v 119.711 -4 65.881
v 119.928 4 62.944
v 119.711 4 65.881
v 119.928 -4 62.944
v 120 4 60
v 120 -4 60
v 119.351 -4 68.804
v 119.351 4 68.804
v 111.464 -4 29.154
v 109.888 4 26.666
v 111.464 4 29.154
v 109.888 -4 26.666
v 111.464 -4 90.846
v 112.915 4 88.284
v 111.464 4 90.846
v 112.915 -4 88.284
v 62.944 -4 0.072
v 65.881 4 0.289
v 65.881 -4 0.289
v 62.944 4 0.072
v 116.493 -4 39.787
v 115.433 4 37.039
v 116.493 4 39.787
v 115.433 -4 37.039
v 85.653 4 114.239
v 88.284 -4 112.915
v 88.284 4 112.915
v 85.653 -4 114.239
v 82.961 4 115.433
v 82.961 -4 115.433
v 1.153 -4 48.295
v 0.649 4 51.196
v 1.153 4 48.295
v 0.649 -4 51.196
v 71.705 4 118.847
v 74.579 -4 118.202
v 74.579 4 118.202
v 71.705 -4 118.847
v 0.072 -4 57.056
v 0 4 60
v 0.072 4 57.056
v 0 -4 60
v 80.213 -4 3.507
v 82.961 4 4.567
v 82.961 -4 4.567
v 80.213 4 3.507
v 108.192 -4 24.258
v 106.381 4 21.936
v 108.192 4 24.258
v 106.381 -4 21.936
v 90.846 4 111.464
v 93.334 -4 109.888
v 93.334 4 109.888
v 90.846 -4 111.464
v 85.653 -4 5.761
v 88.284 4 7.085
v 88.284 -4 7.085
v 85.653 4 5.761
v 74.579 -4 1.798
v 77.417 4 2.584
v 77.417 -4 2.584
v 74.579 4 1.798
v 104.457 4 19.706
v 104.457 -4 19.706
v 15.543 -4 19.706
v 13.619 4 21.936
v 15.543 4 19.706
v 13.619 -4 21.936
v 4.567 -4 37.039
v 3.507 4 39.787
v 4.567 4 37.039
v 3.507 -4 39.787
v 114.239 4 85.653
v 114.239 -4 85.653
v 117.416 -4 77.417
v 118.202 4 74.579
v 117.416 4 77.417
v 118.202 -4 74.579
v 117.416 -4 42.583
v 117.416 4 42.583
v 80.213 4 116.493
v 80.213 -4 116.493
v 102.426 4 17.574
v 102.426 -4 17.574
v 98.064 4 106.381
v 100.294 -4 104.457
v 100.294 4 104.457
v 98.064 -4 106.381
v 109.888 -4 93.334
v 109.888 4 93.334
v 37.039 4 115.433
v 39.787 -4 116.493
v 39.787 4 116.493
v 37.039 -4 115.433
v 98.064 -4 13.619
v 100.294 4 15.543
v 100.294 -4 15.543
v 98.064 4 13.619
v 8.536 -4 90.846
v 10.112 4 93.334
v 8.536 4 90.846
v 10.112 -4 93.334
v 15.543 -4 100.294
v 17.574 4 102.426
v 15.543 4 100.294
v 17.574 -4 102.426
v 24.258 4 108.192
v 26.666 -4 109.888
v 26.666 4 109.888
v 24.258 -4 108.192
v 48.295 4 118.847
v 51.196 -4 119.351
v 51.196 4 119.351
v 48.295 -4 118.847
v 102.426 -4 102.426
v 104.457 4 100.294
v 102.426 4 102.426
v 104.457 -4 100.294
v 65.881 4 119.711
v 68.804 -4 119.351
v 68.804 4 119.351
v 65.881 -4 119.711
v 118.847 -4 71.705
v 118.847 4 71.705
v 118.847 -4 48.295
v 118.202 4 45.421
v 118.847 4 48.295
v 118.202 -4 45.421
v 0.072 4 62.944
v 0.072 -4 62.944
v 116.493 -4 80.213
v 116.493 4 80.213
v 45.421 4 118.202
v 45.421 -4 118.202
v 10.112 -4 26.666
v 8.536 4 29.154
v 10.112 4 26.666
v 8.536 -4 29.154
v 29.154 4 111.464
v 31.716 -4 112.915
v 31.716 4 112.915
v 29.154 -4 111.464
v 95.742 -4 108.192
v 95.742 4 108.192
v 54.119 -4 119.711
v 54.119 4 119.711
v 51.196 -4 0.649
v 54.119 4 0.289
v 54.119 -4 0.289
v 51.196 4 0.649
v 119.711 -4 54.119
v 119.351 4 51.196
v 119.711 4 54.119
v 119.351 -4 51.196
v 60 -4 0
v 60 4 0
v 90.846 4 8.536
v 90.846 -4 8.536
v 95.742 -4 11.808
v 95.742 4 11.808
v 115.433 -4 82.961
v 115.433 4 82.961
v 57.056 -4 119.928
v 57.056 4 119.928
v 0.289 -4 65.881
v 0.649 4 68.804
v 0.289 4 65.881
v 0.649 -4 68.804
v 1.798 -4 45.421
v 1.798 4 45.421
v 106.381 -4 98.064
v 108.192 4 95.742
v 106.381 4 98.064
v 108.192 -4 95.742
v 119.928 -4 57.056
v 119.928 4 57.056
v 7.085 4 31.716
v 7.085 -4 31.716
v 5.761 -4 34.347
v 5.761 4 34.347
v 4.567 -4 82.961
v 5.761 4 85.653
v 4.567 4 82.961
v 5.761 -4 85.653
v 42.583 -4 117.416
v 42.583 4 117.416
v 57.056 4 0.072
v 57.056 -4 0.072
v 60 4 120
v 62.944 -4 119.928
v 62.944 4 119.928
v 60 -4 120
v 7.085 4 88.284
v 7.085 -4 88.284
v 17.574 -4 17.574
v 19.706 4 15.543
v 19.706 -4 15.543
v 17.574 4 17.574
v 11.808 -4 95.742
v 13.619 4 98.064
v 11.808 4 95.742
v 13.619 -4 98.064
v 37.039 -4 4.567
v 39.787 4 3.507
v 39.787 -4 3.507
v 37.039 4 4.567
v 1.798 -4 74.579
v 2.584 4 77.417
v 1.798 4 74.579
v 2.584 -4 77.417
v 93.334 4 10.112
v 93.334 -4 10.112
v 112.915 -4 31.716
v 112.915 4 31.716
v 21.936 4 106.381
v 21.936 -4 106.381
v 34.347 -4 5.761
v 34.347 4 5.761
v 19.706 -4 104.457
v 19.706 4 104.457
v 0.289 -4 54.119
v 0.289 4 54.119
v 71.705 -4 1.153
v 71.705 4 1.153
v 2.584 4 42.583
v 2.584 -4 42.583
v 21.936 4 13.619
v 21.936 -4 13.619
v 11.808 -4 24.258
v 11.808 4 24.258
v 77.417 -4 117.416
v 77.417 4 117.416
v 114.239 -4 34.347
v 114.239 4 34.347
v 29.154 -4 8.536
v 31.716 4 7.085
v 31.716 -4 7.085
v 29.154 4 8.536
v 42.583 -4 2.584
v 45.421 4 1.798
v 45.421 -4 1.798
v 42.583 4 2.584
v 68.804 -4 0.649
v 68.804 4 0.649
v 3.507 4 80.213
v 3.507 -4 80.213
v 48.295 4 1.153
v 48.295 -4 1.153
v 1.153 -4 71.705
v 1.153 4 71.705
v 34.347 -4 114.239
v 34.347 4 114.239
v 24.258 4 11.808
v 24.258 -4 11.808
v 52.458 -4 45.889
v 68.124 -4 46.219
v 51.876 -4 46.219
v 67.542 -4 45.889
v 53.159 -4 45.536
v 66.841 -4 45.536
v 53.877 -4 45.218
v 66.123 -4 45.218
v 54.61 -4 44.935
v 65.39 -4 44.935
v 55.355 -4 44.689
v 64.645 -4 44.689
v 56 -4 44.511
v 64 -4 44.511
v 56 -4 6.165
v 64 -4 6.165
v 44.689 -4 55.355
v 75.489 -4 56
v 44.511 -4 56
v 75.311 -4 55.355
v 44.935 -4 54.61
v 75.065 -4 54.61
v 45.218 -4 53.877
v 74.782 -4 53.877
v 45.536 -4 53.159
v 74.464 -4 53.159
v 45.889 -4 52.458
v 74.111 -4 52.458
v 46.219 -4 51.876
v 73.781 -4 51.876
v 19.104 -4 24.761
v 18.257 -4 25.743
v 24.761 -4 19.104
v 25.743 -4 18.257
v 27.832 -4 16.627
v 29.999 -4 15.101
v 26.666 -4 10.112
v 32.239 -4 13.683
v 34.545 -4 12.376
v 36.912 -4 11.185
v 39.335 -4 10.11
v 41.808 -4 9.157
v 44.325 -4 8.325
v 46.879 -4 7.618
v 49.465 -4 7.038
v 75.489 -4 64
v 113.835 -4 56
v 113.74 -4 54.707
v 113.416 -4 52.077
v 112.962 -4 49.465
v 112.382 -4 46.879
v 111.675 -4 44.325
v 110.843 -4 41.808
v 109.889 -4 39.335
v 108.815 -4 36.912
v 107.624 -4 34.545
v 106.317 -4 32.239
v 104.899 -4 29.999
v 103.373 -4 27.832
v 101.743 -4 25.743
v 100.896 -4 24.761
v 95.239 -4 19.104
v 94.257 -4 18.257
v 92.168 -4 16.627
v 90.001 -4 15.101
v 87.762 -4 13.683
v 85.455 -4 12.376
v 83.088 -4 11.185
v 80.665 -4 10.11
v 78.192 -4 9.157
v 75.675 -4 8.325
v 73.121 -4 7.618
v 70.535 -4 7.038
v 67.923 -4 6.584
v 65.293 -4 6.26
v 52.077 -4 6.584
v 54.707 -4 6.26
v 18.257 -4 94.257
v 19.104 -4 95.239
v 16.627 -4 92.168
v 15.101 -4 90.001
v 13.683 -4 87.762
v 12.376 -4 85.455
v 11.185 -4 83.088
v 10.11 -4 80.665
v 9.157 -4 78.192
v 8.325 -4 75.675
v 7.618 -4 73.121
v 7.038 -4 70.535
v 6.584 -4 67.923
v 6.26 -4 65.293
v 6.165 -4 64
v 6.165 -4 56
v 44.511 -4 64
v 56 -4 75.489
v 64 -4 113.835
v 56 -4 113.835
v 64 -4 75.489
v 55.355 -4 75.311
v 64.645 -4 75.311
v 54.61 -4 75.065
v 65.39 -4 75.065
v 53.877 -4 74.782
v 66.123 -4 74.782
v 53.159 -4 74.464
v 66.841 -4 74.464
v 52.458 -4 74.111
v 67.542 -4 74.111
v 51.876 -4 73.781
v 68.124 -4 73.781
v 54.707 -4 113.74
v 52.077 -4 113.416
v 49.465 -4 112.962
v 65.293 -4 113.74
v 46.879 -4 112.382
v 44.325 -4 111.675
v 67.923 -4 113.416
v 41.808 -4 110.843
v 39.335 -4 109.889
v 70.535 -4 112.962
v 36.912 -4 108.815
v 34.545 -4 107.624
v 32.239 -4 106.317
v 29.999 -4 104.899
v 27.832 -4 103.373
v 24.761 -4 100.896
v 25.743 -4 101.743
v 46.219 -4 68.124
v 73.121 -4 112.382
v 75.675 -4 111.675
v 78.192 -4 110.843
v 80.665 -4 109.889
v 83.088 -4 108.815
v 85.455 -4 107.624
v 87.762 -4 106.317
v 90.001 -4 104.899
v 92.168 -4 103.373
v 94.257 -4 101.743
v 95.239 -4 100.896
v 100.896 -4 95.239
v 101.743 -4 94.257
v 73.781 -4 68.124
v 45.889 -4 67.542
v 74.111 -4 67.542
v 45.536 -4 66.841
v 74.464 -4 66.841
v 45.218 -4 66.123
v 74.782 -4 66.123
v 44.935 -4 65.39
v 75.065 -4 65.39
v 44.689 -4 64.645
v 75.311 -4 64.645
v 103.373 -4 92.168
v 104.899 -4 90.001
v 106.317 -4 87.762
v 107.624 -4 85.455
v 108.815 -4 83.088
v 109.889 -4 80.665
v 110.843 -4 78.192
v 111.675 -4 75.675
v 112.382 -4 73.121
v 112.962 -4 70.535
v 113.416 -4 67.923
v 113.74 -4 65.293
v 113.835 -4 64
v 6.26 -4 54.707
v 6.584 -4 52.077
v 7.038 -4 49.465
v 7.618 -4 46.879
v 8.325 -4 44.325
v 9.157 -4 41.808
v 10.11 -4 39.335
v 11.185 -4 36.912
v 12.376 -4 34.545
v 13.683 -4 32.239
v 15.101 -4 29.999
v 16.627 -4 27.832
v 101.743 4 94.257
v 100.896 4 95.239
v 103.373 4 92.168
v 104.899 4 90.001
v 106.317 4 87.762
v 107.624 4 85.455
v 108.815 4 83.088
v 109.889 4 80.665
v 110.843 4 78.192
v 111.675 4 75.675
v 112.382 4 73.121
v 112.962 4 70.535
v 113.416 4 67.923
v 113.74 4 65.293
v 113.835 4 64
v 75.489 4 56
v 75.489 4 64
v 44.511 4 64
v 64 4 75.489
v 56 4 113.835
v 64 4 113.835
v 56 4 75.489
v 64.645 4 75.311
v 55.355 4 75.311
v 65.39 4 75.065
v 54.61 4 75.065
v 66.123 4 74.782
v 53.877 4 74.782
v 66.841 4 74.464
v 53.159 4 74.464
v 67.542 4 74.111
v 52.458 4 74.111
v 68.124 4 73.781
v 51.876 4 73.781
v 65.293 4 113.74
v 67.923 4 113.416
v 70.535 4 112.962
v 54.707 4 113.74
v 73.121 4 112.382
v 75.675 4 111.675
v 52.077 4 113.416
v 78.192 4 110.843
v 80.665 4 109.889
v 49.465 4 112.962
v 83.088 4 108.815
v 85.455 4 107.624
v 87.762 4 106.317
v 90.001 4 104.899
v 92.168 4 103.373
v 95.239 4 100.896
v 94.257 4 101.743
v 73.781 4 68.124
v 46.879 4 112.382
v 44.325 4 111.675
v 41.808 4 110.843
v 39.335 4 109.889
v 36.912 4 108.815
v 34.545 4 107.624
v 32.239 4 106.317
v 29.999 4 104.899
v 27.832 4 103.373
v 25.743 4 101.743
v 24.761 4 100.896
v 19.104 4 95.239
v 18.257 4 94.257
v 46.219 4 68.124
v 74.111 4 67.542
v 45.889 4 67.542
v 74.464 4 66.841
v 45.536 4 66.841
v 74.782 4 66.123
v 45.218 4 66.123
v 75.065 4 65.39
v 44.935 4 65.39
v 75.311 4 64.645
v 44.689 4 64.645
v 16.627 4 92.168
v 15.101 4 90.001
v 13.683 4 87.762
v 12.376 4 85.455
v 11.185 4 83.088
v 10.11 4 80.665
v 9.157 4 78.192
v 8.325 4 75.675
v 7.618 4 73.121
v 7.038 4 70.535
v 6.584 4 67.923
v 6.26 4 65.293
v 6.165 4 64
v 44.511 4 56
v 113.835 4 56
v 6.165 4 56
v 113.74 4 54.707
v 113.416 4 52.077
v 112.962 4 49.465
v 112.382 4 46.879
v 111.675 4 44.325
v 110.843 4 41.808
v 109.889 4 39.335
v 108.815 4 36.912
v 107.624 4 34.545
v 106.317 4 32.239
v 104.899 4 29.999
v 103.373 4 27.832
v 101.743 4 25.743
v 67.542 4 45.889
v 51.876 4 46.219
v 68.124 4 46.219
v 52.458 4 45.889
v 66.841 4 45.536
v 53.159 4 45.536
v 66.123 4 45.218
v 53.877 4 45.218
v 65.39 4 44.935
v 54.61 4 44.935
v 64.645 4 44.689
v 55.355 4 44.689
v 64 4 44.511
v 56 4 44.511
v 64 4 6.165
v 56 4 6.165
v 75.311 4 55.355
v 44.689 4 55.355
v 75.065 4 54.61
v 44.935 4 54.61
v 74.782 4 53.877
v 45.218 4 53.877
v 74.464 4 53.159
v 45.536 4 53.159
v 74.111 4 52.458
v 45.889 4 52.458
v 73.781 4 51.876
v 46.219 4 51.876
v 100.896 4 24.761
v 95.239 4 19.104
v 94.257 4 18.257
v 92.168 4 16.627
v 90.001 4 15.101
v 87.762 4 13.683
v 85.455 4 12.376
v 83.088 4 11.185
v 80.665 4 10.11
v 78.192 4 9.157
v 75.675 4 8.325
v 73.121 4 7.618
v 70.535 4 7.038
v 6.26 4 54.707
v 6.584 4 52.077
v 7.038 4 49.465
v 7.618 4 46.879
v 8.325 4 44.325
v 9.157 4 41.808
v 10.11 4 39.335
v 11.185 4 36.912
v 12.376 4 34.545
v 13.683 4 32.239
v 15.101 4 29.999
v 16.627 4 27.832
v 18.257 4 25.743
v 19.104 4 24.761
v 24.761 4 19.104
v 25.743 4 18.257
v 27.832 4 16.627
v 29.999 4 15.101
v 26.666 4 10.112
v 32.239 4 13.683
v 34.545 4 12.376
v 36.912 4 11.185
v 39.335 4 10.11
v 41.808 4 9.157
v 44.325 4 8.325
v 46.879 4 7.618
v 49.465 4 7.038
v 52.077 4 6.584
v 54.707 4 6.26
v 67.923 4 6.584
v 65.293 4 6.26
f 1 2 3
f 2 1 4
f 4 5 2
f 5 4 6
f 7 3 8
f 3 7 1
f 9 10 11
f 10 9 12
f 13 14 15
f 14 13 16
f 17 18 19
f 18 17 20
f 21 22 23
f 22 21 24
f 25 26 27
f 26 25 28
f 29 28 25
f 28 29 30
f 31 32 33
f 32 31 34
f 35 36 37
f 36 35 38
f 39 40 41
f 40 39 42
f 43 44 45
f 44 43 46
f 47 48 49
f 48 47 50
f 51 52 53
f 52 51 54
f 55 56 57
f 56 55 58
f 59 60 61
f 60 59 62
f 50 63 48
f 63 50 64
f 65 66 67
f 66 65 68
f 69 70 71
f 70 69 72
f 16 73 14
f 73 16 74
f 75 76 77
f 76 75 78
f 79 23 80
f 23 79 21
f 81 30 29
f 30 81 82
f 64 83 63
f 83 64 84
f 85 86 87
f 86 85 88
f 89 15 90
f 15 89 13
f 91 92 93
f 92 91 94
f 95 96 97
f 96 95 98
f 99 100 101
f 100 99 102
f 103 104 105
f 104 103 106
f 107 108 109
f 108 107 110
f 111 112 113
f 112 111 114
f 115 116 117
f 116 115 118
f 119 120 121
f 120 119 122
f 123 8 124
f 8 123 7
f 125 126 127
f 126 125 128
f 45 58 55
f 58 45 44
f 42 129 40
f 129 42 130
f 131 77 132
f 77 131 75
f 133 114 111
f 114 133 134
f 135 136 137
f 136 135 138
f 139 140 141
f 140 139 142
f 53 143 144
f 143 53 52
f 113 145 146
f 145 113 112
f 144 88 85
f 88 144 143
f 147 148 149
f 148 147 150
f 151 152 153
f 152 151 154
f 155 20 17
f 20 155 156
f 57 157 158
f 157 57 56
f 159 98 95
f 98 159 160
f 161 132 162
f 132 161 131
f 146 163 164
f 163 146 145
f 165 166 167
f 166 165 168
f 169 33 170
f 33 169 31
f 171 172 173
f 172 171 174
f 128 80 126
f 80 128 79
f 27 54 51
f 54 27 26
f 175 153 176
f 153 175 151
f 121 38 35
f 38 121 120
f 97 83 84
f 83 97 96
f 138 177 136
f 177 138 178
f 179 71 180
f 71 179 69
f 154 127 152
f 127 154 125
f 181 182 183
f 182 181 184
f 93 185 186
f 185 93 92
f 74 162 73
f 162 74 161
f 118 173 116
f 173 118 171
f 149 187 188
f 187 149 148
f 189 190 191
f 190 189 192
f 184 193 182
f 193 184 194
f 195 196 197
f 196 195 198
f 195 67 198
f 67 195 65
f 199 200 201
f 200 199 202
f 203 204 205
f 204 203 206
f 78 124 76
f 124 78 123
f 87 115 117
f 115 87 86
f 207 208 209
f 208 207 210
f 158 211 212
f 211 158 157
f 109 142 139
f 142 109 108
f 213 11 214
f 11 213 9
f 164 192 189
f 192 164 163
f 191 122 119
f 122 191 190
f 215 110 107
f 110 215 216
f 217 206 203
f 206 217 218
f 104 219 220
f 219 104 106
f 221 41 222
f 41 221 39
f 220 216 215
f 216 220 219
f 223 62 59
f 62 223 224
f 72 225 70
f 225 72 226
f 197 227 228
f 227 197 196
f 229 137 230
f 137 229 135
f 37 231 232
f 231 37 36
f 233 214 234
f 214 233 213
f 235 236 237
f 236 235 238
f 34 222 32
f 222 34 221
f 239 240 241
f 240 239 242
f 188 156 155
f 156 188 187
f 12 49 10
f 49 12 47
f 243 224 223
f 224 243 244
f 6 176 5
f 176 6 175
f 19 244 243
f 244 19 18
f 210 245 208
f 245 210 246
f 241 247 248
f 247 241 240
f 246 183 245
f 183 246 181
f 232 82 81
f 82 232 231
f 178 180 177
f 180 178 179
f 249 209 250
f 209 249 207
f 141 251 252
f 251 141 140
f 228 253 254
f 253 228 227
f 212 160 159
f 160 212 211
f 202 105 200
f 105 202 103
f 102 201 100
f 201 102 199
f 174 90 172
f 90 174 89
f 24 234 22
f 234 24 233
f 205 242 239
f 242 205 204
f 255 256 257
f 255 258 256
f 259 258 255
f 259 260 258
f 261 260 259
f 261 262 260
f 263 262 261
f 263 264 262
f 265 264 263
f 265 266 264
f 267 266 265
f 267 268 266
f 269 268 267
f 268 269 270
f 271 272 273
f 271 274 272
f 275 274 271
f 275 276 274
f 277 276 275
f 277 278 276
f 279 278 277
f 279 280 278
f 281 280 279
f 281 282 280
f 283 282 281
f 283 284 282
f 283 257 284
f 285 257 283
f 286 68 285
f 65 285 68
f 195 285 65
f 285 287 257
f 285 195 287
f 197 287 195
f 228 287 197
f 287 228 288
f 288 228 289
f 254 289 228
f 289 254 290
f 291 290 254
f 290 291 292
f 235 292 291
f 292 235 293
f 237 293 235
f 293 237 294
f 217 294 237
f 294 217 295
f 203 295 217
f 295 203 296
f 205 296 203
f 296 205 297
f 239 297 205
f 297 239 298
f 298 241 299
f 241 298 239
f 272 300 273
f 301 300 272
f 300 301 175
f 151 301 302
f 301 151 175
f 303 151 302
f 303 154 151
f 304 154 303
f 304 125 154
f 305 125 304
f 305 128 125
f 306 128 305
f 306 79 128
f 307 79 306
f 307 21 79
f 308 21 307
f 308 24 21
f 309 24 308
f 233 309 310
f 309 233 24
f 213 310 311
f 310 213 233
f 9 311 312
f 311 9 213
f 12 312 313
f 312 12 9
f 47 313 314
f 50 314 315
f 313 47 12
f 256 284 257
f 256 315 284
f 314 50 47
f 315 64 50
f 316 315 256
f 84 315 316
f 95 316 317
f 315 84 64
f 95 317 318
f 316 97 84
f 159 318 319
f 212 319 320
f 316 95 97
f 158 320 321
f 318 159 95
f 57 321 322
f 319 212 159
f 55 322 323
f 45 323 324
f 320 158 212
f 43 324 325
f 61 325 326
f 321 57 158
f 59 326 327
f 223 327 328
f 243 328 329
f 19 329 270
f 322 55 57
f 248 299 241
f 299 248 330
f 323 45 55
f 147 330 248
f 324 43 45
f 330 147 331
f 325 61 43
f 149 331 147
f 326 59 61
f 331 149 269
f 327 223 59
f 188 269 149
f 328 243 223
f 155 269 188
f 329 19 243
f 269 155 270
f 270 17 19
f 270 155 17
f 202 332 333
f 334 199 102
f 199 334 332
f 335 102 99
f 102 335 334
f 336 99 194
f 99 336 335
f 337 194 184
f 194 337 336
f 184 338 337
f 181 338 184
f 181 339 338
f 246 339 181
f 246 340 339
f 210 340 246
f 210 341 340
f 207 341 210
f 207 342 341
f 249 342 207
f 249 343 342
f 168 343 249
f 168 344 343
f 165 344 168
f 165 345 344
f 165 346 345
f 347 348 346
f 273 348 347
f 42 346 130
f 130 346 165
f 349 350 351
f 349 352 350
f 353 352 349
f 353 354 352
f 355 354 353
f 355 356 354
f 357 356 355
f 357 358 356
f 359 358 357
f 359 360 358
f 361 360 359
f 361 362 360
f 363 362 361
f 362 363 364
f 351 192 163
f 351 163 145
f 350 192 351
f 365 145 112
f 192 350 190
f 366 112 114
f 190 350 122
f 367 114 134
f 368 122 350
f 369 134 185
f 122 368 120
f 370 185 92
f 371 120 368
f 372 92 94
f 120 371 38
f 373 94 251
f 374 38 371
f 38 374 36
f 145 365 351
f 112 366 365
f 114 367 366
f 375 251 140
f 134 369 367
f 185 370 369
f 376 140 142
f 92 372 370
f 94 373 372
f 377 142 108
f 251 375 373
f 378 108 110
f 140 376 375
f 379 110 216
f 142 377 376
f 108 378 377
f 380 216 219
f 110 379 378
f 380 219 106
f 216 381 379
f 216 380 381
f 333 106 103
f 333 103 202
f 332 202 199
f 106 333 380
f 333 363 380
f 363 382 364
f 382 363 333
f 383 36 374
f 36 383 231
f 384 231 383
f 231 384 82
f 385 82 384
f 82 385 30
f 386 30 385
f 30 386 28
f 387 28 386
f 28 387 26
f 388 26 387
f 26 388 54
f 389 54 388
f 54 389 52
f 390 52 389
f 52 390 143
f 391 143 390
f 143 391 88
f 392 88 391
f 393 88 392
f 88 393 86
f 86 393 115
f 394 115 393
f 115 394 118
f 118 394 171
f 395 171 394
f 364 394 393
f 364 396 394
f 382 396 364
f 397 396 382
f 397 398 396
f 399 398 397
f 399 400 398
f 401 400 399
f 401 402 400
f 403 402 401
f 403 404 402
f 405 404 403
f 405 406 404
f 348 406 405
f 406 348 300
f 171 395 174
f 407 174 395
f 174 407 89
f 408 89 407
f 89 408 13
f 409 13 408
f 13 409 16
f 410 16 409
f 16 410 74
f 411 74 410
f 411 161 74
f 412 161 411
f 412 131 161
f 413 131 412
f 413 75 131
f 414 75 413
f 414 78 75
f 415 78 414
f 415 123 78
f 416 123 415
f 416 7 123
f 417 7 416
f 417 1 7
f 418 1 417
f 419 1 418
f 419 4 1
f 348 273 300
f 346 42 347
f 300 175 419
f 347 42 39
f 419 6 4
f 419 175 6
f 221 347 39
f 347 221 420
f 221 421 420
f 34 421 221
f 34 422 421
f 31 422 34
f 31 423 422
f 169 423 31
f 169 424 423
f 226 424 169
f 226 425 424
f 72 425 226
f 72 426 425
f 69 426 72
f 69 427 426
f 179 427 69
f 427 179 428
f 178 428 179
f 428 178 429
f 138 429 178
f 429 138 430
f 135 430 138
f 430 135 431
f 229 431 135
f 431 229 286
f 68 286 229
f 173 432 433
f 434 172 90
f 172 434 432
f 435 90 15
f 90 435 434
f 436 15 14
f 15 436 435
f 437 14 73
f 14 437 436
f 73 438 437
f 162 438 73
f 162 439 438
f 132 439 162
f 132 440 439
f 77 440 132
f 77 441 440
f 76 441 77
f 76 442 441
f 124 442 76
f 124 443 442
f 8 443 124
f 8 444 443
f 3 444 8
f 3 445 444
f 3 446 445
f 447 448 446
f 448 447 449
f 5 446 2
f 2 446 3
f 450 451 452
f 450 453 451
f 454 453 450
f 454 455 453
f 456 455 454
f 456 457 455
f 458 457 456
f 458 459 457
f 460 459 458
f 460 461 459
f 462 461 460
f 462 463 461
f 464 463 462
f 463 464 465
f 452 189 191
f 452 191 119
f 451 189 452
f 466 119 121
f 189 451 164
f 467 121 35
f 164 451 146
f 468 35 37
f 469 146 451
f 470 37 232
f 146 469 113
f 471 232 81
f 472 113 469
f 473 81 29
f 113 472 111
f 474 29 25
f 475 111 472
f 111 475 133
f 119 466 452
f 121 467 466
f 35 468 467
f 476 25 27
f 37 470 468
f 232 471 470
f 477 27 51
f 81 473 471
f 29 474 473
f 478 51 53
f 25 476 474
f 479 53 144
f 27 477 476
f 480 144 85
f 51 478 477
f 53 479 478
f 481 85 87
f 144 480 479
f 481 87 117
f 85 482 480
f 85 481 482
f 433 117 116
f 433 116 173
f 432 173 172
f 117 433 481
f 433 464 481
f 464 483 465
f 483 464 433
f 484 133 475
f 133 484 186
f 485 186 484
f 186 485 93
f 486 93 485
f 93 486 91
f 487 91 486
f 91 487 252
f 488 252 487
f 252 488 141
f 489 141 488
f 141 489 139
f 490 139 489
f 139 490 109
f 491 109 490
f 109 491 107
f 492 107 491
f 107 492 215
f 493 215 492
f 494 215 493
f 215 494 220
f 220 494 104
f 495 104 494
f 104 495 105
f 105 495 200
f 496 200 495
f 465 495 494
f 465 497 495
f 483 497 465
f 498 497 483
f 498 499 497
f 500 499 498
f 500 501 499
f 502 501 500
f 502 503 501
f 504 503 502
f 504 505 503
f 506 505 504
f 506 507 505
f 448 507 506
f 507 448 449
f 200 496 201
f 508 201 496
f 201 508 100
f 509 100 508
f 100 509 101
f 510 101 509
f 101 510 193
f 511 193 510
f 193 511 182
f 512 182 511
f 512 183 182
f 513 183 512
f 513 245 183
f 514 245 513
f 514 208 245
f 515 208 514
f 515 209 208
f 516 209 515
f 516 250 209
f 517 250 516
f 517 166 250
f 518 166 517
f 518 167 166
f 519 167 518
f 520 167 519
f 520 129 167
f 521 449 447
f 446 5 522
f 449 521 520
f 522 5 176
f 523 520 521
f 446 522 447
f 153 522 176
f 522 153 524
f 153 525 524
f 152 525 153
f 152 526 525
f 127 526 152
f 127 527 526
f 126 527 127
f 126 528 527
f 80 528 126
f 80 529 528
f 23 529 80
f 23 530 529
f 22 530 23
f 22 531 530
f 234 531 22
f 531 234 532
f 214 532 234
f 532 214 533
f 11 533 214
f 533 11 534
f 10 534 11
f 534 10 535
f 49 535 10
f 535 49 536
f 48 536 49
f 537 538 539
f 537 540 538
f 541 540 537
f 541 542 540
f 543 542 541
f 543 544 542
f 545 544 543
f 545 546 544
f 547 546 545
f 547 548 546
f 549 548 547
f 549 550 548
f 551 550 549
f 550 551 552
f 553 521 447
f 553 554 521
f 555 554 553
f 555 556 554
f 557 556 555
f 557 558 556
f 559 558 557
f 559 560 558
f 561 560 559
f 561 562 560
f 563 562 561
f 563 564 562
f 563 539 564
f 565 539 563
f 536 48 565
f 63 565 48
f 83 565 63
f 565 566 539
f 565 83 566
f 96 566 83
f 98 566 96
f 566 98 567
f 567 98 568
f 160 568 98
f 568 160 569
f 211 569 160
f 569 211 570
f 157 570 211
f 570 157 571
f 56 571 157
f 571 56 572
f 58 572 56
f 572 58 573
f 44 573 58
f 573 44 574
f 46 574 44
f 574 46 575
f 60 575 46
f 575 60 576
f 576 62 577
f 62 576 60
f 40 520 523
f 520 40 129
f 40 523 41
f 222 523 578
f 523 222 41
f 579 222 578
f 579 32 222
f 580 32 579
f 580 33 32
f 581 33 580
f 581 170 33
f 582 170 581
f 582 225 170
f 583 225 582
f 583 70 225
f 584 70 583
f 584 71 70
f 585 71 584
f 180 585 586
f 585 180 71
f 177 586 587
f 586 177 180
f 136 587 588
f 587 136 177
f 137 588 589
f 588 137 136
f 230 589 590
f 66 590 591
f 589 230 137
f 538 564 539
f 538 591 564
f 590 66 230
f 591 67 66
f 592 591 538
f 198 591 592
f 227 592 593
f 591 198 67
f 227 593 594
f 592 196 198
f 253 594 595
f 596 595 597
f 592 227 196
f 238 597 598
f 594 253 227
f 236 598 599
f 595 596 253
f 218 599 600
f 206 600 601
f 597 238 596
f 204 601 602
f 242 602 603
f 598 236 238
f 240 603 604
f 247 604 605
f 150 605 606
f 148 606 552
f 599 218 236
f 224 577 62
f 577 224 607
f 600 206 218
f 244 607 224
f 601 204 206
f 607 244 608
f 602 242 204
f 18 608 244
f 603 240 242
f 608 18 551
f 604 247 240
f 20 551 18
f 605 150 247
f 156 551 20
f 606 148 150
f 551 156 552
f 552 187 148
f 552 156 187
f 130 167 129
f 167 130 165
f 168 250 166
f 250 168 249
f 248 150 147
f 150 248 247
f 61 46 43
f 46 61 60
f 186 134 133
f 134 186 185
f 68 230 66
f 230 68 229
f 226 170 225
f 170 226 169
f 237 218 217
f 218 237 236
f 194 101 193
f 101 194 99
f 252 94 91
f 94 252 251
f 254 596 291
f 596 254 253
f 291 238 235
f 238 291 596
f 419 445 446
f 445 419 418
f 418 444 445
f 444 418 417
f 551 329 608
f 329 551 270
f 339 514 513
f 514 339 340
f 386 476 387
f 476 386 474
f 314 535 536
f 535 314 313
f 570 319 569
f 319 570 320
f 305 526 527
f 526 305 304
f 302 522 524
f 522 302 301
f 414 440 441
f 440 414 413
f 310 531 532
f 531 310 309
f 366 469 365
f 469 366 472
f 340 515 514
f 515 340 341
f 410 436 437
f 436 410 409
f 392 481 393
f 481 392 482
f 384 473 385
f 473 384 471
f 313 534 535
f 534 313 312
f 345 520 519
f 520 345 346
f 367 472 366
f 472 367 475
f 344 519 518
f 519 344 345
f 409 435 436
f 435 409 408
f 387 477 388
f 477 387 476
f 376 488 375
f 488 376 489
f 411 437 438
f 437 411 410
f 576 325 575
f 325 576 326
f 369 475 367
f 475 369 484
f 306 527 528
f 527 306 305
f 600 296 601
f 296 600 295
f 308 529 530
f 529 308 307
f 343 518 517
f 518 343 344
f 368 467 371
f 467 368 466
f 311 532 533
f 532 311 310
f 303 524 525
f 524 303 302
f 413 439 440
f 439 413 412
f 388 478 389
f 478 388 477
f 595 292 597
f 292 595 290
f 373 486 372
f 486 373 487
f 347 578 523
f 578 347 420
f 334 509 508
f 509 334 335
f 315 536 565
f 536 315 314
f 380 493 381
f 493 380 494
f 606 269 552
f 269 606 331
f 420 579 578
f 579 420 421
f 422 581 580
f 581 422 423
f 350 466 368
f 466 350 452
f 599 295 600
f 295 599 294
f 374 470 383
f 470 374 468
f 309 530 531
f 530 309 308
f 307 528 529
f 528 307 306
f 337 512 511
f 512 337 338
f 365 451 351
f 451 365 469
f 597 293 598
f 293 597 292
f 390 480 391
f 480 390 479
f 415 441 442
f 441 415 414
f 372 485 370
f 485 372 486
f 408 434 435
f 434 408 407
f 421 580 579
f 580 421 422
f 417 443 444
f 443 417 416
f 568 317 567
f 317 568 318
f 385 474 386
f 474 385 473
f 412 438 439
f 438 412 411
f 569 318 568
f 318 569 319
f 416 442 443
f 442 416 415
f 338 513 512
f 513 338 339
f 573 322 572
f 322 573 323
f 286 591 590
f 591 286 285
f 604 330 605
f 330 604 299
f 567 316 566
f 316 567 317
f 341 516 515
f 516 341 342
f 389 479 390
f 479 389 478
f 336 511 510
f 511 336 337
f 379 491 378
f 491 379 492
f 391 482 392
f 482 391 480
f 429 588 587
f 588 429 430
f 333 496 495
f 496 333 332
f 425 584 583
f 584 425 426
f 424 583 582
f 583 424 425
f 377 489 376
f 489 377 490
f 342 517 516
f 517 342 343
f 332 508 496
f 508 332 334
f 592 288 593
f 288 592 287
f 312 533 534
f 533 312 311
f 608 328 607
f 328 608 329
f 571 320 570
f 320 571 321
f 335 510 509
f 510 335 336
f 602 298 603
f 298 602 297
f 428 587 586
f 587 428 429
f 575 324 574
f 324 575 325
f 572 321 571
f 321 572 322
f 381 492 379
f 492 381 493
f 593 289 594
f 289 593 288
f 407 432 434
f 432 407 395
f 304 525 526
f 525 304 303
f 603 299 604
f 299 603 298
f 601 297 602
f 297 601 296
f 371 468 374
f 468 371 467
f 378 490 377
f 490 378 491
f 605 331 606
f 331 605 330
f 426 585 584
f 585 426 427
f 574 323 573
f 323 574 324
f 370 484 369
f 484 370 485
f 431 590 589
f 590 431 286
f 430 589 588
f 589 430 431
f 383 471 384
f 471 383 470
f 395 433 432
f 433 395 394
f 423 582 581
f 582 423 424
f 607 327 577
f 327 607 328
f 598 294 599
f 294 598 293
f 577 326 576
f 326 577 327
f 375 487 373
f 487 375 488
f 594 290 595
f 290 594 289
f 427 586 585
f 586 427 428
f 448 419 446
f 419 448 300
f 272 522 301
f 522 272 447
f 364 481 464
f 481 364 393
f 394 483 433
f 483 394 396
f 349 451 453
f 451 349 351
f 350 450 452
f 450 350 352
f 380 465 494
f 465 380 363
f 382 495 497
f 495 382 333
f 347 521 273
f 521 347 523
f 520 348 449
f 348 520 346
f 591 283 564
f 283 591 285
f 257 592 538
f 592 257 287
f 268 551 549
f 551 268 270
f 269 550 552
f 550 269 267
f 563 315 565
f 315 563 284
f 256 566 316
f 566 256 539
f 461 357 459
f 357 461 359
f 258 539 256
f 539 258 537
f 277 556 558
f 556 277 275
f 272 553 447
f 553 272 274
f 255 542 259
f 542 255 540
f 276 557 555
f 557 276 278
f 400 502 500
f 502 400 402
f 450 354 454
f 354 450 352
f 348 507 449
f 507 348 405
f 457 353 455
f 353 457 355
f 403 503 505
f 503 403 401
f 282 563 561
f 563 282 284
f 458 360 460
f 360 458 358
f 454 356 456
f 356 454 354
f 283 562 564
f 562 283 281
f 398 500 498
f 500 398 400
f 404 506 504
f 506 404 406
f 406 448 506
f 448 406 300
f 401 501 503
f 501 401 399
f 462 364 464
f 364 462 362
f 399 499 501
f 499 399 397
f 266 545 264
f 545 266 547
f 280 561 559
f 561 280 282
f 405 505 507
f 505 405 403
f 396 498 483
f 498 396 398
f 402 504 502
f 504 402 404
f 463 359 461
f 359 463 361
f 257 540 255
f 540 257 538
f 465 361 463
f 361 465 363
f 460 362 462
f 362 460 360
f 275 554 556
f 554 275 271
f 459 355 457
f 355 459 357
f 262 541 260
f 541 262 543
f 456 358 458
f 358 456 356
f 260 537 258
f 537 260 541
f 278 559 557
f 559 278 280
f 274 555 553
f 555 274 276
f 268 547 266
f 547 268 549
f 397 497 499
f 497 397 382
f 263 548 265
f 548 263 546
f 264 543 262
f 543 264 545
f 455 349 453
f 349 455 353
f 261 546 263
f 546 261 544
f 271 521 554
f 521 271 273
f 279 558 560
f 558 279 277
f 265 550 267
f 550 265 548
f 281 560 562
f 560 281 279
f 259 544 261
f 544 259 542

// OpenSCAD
$fn=128;
/* doodle-meta {"version":1,"parameters":{"outer_diameter":{"label":"Outer diameter","description":"Outer rim diameter","unit":"mm"},"hub_diameter":{"label":"Hub","description":"Hub diameter","unit":"mm"},"spoke_width":{"label":"Spoke width","description":"Spoke bar thickness","unit":"mm"}}} */
// Wheel lies in XZ. FIXED: spokes now reach into the rim inner wall (overlap >= 1 mm) so every spoke connects to the rim.
outer_diameter = 120; // mm
rim_inner_diameter = 108; // mm
hub_diameter = 32; // mm
thickness = 8; // mm
spoke_count = 8; // count
spoke_width = 8; // mm
spoke_reach = 41; // mm from hub overlap start; reaches into the rim (rim inner radius 54, hub start 15)
translate([outer_diameter/2,thickness/2,outer_diameter/2]) rotate([90,0,0]) union(){
  difference(){cylinder(d=outer_diameter,h=thickness);translate([0,0,-1])cylinder(d=rim_inner_diameter,h=thickness+2);}
  cylinder(d=hub_diameter,h=thickness);
  for(a=[0:360/spoke_count:360-360/spoke_count])rotate([0,0,a])translate([hub_diameter/2-1,-thickness/2,0])cube([spoke_reach,thickness,thickness]);
}
